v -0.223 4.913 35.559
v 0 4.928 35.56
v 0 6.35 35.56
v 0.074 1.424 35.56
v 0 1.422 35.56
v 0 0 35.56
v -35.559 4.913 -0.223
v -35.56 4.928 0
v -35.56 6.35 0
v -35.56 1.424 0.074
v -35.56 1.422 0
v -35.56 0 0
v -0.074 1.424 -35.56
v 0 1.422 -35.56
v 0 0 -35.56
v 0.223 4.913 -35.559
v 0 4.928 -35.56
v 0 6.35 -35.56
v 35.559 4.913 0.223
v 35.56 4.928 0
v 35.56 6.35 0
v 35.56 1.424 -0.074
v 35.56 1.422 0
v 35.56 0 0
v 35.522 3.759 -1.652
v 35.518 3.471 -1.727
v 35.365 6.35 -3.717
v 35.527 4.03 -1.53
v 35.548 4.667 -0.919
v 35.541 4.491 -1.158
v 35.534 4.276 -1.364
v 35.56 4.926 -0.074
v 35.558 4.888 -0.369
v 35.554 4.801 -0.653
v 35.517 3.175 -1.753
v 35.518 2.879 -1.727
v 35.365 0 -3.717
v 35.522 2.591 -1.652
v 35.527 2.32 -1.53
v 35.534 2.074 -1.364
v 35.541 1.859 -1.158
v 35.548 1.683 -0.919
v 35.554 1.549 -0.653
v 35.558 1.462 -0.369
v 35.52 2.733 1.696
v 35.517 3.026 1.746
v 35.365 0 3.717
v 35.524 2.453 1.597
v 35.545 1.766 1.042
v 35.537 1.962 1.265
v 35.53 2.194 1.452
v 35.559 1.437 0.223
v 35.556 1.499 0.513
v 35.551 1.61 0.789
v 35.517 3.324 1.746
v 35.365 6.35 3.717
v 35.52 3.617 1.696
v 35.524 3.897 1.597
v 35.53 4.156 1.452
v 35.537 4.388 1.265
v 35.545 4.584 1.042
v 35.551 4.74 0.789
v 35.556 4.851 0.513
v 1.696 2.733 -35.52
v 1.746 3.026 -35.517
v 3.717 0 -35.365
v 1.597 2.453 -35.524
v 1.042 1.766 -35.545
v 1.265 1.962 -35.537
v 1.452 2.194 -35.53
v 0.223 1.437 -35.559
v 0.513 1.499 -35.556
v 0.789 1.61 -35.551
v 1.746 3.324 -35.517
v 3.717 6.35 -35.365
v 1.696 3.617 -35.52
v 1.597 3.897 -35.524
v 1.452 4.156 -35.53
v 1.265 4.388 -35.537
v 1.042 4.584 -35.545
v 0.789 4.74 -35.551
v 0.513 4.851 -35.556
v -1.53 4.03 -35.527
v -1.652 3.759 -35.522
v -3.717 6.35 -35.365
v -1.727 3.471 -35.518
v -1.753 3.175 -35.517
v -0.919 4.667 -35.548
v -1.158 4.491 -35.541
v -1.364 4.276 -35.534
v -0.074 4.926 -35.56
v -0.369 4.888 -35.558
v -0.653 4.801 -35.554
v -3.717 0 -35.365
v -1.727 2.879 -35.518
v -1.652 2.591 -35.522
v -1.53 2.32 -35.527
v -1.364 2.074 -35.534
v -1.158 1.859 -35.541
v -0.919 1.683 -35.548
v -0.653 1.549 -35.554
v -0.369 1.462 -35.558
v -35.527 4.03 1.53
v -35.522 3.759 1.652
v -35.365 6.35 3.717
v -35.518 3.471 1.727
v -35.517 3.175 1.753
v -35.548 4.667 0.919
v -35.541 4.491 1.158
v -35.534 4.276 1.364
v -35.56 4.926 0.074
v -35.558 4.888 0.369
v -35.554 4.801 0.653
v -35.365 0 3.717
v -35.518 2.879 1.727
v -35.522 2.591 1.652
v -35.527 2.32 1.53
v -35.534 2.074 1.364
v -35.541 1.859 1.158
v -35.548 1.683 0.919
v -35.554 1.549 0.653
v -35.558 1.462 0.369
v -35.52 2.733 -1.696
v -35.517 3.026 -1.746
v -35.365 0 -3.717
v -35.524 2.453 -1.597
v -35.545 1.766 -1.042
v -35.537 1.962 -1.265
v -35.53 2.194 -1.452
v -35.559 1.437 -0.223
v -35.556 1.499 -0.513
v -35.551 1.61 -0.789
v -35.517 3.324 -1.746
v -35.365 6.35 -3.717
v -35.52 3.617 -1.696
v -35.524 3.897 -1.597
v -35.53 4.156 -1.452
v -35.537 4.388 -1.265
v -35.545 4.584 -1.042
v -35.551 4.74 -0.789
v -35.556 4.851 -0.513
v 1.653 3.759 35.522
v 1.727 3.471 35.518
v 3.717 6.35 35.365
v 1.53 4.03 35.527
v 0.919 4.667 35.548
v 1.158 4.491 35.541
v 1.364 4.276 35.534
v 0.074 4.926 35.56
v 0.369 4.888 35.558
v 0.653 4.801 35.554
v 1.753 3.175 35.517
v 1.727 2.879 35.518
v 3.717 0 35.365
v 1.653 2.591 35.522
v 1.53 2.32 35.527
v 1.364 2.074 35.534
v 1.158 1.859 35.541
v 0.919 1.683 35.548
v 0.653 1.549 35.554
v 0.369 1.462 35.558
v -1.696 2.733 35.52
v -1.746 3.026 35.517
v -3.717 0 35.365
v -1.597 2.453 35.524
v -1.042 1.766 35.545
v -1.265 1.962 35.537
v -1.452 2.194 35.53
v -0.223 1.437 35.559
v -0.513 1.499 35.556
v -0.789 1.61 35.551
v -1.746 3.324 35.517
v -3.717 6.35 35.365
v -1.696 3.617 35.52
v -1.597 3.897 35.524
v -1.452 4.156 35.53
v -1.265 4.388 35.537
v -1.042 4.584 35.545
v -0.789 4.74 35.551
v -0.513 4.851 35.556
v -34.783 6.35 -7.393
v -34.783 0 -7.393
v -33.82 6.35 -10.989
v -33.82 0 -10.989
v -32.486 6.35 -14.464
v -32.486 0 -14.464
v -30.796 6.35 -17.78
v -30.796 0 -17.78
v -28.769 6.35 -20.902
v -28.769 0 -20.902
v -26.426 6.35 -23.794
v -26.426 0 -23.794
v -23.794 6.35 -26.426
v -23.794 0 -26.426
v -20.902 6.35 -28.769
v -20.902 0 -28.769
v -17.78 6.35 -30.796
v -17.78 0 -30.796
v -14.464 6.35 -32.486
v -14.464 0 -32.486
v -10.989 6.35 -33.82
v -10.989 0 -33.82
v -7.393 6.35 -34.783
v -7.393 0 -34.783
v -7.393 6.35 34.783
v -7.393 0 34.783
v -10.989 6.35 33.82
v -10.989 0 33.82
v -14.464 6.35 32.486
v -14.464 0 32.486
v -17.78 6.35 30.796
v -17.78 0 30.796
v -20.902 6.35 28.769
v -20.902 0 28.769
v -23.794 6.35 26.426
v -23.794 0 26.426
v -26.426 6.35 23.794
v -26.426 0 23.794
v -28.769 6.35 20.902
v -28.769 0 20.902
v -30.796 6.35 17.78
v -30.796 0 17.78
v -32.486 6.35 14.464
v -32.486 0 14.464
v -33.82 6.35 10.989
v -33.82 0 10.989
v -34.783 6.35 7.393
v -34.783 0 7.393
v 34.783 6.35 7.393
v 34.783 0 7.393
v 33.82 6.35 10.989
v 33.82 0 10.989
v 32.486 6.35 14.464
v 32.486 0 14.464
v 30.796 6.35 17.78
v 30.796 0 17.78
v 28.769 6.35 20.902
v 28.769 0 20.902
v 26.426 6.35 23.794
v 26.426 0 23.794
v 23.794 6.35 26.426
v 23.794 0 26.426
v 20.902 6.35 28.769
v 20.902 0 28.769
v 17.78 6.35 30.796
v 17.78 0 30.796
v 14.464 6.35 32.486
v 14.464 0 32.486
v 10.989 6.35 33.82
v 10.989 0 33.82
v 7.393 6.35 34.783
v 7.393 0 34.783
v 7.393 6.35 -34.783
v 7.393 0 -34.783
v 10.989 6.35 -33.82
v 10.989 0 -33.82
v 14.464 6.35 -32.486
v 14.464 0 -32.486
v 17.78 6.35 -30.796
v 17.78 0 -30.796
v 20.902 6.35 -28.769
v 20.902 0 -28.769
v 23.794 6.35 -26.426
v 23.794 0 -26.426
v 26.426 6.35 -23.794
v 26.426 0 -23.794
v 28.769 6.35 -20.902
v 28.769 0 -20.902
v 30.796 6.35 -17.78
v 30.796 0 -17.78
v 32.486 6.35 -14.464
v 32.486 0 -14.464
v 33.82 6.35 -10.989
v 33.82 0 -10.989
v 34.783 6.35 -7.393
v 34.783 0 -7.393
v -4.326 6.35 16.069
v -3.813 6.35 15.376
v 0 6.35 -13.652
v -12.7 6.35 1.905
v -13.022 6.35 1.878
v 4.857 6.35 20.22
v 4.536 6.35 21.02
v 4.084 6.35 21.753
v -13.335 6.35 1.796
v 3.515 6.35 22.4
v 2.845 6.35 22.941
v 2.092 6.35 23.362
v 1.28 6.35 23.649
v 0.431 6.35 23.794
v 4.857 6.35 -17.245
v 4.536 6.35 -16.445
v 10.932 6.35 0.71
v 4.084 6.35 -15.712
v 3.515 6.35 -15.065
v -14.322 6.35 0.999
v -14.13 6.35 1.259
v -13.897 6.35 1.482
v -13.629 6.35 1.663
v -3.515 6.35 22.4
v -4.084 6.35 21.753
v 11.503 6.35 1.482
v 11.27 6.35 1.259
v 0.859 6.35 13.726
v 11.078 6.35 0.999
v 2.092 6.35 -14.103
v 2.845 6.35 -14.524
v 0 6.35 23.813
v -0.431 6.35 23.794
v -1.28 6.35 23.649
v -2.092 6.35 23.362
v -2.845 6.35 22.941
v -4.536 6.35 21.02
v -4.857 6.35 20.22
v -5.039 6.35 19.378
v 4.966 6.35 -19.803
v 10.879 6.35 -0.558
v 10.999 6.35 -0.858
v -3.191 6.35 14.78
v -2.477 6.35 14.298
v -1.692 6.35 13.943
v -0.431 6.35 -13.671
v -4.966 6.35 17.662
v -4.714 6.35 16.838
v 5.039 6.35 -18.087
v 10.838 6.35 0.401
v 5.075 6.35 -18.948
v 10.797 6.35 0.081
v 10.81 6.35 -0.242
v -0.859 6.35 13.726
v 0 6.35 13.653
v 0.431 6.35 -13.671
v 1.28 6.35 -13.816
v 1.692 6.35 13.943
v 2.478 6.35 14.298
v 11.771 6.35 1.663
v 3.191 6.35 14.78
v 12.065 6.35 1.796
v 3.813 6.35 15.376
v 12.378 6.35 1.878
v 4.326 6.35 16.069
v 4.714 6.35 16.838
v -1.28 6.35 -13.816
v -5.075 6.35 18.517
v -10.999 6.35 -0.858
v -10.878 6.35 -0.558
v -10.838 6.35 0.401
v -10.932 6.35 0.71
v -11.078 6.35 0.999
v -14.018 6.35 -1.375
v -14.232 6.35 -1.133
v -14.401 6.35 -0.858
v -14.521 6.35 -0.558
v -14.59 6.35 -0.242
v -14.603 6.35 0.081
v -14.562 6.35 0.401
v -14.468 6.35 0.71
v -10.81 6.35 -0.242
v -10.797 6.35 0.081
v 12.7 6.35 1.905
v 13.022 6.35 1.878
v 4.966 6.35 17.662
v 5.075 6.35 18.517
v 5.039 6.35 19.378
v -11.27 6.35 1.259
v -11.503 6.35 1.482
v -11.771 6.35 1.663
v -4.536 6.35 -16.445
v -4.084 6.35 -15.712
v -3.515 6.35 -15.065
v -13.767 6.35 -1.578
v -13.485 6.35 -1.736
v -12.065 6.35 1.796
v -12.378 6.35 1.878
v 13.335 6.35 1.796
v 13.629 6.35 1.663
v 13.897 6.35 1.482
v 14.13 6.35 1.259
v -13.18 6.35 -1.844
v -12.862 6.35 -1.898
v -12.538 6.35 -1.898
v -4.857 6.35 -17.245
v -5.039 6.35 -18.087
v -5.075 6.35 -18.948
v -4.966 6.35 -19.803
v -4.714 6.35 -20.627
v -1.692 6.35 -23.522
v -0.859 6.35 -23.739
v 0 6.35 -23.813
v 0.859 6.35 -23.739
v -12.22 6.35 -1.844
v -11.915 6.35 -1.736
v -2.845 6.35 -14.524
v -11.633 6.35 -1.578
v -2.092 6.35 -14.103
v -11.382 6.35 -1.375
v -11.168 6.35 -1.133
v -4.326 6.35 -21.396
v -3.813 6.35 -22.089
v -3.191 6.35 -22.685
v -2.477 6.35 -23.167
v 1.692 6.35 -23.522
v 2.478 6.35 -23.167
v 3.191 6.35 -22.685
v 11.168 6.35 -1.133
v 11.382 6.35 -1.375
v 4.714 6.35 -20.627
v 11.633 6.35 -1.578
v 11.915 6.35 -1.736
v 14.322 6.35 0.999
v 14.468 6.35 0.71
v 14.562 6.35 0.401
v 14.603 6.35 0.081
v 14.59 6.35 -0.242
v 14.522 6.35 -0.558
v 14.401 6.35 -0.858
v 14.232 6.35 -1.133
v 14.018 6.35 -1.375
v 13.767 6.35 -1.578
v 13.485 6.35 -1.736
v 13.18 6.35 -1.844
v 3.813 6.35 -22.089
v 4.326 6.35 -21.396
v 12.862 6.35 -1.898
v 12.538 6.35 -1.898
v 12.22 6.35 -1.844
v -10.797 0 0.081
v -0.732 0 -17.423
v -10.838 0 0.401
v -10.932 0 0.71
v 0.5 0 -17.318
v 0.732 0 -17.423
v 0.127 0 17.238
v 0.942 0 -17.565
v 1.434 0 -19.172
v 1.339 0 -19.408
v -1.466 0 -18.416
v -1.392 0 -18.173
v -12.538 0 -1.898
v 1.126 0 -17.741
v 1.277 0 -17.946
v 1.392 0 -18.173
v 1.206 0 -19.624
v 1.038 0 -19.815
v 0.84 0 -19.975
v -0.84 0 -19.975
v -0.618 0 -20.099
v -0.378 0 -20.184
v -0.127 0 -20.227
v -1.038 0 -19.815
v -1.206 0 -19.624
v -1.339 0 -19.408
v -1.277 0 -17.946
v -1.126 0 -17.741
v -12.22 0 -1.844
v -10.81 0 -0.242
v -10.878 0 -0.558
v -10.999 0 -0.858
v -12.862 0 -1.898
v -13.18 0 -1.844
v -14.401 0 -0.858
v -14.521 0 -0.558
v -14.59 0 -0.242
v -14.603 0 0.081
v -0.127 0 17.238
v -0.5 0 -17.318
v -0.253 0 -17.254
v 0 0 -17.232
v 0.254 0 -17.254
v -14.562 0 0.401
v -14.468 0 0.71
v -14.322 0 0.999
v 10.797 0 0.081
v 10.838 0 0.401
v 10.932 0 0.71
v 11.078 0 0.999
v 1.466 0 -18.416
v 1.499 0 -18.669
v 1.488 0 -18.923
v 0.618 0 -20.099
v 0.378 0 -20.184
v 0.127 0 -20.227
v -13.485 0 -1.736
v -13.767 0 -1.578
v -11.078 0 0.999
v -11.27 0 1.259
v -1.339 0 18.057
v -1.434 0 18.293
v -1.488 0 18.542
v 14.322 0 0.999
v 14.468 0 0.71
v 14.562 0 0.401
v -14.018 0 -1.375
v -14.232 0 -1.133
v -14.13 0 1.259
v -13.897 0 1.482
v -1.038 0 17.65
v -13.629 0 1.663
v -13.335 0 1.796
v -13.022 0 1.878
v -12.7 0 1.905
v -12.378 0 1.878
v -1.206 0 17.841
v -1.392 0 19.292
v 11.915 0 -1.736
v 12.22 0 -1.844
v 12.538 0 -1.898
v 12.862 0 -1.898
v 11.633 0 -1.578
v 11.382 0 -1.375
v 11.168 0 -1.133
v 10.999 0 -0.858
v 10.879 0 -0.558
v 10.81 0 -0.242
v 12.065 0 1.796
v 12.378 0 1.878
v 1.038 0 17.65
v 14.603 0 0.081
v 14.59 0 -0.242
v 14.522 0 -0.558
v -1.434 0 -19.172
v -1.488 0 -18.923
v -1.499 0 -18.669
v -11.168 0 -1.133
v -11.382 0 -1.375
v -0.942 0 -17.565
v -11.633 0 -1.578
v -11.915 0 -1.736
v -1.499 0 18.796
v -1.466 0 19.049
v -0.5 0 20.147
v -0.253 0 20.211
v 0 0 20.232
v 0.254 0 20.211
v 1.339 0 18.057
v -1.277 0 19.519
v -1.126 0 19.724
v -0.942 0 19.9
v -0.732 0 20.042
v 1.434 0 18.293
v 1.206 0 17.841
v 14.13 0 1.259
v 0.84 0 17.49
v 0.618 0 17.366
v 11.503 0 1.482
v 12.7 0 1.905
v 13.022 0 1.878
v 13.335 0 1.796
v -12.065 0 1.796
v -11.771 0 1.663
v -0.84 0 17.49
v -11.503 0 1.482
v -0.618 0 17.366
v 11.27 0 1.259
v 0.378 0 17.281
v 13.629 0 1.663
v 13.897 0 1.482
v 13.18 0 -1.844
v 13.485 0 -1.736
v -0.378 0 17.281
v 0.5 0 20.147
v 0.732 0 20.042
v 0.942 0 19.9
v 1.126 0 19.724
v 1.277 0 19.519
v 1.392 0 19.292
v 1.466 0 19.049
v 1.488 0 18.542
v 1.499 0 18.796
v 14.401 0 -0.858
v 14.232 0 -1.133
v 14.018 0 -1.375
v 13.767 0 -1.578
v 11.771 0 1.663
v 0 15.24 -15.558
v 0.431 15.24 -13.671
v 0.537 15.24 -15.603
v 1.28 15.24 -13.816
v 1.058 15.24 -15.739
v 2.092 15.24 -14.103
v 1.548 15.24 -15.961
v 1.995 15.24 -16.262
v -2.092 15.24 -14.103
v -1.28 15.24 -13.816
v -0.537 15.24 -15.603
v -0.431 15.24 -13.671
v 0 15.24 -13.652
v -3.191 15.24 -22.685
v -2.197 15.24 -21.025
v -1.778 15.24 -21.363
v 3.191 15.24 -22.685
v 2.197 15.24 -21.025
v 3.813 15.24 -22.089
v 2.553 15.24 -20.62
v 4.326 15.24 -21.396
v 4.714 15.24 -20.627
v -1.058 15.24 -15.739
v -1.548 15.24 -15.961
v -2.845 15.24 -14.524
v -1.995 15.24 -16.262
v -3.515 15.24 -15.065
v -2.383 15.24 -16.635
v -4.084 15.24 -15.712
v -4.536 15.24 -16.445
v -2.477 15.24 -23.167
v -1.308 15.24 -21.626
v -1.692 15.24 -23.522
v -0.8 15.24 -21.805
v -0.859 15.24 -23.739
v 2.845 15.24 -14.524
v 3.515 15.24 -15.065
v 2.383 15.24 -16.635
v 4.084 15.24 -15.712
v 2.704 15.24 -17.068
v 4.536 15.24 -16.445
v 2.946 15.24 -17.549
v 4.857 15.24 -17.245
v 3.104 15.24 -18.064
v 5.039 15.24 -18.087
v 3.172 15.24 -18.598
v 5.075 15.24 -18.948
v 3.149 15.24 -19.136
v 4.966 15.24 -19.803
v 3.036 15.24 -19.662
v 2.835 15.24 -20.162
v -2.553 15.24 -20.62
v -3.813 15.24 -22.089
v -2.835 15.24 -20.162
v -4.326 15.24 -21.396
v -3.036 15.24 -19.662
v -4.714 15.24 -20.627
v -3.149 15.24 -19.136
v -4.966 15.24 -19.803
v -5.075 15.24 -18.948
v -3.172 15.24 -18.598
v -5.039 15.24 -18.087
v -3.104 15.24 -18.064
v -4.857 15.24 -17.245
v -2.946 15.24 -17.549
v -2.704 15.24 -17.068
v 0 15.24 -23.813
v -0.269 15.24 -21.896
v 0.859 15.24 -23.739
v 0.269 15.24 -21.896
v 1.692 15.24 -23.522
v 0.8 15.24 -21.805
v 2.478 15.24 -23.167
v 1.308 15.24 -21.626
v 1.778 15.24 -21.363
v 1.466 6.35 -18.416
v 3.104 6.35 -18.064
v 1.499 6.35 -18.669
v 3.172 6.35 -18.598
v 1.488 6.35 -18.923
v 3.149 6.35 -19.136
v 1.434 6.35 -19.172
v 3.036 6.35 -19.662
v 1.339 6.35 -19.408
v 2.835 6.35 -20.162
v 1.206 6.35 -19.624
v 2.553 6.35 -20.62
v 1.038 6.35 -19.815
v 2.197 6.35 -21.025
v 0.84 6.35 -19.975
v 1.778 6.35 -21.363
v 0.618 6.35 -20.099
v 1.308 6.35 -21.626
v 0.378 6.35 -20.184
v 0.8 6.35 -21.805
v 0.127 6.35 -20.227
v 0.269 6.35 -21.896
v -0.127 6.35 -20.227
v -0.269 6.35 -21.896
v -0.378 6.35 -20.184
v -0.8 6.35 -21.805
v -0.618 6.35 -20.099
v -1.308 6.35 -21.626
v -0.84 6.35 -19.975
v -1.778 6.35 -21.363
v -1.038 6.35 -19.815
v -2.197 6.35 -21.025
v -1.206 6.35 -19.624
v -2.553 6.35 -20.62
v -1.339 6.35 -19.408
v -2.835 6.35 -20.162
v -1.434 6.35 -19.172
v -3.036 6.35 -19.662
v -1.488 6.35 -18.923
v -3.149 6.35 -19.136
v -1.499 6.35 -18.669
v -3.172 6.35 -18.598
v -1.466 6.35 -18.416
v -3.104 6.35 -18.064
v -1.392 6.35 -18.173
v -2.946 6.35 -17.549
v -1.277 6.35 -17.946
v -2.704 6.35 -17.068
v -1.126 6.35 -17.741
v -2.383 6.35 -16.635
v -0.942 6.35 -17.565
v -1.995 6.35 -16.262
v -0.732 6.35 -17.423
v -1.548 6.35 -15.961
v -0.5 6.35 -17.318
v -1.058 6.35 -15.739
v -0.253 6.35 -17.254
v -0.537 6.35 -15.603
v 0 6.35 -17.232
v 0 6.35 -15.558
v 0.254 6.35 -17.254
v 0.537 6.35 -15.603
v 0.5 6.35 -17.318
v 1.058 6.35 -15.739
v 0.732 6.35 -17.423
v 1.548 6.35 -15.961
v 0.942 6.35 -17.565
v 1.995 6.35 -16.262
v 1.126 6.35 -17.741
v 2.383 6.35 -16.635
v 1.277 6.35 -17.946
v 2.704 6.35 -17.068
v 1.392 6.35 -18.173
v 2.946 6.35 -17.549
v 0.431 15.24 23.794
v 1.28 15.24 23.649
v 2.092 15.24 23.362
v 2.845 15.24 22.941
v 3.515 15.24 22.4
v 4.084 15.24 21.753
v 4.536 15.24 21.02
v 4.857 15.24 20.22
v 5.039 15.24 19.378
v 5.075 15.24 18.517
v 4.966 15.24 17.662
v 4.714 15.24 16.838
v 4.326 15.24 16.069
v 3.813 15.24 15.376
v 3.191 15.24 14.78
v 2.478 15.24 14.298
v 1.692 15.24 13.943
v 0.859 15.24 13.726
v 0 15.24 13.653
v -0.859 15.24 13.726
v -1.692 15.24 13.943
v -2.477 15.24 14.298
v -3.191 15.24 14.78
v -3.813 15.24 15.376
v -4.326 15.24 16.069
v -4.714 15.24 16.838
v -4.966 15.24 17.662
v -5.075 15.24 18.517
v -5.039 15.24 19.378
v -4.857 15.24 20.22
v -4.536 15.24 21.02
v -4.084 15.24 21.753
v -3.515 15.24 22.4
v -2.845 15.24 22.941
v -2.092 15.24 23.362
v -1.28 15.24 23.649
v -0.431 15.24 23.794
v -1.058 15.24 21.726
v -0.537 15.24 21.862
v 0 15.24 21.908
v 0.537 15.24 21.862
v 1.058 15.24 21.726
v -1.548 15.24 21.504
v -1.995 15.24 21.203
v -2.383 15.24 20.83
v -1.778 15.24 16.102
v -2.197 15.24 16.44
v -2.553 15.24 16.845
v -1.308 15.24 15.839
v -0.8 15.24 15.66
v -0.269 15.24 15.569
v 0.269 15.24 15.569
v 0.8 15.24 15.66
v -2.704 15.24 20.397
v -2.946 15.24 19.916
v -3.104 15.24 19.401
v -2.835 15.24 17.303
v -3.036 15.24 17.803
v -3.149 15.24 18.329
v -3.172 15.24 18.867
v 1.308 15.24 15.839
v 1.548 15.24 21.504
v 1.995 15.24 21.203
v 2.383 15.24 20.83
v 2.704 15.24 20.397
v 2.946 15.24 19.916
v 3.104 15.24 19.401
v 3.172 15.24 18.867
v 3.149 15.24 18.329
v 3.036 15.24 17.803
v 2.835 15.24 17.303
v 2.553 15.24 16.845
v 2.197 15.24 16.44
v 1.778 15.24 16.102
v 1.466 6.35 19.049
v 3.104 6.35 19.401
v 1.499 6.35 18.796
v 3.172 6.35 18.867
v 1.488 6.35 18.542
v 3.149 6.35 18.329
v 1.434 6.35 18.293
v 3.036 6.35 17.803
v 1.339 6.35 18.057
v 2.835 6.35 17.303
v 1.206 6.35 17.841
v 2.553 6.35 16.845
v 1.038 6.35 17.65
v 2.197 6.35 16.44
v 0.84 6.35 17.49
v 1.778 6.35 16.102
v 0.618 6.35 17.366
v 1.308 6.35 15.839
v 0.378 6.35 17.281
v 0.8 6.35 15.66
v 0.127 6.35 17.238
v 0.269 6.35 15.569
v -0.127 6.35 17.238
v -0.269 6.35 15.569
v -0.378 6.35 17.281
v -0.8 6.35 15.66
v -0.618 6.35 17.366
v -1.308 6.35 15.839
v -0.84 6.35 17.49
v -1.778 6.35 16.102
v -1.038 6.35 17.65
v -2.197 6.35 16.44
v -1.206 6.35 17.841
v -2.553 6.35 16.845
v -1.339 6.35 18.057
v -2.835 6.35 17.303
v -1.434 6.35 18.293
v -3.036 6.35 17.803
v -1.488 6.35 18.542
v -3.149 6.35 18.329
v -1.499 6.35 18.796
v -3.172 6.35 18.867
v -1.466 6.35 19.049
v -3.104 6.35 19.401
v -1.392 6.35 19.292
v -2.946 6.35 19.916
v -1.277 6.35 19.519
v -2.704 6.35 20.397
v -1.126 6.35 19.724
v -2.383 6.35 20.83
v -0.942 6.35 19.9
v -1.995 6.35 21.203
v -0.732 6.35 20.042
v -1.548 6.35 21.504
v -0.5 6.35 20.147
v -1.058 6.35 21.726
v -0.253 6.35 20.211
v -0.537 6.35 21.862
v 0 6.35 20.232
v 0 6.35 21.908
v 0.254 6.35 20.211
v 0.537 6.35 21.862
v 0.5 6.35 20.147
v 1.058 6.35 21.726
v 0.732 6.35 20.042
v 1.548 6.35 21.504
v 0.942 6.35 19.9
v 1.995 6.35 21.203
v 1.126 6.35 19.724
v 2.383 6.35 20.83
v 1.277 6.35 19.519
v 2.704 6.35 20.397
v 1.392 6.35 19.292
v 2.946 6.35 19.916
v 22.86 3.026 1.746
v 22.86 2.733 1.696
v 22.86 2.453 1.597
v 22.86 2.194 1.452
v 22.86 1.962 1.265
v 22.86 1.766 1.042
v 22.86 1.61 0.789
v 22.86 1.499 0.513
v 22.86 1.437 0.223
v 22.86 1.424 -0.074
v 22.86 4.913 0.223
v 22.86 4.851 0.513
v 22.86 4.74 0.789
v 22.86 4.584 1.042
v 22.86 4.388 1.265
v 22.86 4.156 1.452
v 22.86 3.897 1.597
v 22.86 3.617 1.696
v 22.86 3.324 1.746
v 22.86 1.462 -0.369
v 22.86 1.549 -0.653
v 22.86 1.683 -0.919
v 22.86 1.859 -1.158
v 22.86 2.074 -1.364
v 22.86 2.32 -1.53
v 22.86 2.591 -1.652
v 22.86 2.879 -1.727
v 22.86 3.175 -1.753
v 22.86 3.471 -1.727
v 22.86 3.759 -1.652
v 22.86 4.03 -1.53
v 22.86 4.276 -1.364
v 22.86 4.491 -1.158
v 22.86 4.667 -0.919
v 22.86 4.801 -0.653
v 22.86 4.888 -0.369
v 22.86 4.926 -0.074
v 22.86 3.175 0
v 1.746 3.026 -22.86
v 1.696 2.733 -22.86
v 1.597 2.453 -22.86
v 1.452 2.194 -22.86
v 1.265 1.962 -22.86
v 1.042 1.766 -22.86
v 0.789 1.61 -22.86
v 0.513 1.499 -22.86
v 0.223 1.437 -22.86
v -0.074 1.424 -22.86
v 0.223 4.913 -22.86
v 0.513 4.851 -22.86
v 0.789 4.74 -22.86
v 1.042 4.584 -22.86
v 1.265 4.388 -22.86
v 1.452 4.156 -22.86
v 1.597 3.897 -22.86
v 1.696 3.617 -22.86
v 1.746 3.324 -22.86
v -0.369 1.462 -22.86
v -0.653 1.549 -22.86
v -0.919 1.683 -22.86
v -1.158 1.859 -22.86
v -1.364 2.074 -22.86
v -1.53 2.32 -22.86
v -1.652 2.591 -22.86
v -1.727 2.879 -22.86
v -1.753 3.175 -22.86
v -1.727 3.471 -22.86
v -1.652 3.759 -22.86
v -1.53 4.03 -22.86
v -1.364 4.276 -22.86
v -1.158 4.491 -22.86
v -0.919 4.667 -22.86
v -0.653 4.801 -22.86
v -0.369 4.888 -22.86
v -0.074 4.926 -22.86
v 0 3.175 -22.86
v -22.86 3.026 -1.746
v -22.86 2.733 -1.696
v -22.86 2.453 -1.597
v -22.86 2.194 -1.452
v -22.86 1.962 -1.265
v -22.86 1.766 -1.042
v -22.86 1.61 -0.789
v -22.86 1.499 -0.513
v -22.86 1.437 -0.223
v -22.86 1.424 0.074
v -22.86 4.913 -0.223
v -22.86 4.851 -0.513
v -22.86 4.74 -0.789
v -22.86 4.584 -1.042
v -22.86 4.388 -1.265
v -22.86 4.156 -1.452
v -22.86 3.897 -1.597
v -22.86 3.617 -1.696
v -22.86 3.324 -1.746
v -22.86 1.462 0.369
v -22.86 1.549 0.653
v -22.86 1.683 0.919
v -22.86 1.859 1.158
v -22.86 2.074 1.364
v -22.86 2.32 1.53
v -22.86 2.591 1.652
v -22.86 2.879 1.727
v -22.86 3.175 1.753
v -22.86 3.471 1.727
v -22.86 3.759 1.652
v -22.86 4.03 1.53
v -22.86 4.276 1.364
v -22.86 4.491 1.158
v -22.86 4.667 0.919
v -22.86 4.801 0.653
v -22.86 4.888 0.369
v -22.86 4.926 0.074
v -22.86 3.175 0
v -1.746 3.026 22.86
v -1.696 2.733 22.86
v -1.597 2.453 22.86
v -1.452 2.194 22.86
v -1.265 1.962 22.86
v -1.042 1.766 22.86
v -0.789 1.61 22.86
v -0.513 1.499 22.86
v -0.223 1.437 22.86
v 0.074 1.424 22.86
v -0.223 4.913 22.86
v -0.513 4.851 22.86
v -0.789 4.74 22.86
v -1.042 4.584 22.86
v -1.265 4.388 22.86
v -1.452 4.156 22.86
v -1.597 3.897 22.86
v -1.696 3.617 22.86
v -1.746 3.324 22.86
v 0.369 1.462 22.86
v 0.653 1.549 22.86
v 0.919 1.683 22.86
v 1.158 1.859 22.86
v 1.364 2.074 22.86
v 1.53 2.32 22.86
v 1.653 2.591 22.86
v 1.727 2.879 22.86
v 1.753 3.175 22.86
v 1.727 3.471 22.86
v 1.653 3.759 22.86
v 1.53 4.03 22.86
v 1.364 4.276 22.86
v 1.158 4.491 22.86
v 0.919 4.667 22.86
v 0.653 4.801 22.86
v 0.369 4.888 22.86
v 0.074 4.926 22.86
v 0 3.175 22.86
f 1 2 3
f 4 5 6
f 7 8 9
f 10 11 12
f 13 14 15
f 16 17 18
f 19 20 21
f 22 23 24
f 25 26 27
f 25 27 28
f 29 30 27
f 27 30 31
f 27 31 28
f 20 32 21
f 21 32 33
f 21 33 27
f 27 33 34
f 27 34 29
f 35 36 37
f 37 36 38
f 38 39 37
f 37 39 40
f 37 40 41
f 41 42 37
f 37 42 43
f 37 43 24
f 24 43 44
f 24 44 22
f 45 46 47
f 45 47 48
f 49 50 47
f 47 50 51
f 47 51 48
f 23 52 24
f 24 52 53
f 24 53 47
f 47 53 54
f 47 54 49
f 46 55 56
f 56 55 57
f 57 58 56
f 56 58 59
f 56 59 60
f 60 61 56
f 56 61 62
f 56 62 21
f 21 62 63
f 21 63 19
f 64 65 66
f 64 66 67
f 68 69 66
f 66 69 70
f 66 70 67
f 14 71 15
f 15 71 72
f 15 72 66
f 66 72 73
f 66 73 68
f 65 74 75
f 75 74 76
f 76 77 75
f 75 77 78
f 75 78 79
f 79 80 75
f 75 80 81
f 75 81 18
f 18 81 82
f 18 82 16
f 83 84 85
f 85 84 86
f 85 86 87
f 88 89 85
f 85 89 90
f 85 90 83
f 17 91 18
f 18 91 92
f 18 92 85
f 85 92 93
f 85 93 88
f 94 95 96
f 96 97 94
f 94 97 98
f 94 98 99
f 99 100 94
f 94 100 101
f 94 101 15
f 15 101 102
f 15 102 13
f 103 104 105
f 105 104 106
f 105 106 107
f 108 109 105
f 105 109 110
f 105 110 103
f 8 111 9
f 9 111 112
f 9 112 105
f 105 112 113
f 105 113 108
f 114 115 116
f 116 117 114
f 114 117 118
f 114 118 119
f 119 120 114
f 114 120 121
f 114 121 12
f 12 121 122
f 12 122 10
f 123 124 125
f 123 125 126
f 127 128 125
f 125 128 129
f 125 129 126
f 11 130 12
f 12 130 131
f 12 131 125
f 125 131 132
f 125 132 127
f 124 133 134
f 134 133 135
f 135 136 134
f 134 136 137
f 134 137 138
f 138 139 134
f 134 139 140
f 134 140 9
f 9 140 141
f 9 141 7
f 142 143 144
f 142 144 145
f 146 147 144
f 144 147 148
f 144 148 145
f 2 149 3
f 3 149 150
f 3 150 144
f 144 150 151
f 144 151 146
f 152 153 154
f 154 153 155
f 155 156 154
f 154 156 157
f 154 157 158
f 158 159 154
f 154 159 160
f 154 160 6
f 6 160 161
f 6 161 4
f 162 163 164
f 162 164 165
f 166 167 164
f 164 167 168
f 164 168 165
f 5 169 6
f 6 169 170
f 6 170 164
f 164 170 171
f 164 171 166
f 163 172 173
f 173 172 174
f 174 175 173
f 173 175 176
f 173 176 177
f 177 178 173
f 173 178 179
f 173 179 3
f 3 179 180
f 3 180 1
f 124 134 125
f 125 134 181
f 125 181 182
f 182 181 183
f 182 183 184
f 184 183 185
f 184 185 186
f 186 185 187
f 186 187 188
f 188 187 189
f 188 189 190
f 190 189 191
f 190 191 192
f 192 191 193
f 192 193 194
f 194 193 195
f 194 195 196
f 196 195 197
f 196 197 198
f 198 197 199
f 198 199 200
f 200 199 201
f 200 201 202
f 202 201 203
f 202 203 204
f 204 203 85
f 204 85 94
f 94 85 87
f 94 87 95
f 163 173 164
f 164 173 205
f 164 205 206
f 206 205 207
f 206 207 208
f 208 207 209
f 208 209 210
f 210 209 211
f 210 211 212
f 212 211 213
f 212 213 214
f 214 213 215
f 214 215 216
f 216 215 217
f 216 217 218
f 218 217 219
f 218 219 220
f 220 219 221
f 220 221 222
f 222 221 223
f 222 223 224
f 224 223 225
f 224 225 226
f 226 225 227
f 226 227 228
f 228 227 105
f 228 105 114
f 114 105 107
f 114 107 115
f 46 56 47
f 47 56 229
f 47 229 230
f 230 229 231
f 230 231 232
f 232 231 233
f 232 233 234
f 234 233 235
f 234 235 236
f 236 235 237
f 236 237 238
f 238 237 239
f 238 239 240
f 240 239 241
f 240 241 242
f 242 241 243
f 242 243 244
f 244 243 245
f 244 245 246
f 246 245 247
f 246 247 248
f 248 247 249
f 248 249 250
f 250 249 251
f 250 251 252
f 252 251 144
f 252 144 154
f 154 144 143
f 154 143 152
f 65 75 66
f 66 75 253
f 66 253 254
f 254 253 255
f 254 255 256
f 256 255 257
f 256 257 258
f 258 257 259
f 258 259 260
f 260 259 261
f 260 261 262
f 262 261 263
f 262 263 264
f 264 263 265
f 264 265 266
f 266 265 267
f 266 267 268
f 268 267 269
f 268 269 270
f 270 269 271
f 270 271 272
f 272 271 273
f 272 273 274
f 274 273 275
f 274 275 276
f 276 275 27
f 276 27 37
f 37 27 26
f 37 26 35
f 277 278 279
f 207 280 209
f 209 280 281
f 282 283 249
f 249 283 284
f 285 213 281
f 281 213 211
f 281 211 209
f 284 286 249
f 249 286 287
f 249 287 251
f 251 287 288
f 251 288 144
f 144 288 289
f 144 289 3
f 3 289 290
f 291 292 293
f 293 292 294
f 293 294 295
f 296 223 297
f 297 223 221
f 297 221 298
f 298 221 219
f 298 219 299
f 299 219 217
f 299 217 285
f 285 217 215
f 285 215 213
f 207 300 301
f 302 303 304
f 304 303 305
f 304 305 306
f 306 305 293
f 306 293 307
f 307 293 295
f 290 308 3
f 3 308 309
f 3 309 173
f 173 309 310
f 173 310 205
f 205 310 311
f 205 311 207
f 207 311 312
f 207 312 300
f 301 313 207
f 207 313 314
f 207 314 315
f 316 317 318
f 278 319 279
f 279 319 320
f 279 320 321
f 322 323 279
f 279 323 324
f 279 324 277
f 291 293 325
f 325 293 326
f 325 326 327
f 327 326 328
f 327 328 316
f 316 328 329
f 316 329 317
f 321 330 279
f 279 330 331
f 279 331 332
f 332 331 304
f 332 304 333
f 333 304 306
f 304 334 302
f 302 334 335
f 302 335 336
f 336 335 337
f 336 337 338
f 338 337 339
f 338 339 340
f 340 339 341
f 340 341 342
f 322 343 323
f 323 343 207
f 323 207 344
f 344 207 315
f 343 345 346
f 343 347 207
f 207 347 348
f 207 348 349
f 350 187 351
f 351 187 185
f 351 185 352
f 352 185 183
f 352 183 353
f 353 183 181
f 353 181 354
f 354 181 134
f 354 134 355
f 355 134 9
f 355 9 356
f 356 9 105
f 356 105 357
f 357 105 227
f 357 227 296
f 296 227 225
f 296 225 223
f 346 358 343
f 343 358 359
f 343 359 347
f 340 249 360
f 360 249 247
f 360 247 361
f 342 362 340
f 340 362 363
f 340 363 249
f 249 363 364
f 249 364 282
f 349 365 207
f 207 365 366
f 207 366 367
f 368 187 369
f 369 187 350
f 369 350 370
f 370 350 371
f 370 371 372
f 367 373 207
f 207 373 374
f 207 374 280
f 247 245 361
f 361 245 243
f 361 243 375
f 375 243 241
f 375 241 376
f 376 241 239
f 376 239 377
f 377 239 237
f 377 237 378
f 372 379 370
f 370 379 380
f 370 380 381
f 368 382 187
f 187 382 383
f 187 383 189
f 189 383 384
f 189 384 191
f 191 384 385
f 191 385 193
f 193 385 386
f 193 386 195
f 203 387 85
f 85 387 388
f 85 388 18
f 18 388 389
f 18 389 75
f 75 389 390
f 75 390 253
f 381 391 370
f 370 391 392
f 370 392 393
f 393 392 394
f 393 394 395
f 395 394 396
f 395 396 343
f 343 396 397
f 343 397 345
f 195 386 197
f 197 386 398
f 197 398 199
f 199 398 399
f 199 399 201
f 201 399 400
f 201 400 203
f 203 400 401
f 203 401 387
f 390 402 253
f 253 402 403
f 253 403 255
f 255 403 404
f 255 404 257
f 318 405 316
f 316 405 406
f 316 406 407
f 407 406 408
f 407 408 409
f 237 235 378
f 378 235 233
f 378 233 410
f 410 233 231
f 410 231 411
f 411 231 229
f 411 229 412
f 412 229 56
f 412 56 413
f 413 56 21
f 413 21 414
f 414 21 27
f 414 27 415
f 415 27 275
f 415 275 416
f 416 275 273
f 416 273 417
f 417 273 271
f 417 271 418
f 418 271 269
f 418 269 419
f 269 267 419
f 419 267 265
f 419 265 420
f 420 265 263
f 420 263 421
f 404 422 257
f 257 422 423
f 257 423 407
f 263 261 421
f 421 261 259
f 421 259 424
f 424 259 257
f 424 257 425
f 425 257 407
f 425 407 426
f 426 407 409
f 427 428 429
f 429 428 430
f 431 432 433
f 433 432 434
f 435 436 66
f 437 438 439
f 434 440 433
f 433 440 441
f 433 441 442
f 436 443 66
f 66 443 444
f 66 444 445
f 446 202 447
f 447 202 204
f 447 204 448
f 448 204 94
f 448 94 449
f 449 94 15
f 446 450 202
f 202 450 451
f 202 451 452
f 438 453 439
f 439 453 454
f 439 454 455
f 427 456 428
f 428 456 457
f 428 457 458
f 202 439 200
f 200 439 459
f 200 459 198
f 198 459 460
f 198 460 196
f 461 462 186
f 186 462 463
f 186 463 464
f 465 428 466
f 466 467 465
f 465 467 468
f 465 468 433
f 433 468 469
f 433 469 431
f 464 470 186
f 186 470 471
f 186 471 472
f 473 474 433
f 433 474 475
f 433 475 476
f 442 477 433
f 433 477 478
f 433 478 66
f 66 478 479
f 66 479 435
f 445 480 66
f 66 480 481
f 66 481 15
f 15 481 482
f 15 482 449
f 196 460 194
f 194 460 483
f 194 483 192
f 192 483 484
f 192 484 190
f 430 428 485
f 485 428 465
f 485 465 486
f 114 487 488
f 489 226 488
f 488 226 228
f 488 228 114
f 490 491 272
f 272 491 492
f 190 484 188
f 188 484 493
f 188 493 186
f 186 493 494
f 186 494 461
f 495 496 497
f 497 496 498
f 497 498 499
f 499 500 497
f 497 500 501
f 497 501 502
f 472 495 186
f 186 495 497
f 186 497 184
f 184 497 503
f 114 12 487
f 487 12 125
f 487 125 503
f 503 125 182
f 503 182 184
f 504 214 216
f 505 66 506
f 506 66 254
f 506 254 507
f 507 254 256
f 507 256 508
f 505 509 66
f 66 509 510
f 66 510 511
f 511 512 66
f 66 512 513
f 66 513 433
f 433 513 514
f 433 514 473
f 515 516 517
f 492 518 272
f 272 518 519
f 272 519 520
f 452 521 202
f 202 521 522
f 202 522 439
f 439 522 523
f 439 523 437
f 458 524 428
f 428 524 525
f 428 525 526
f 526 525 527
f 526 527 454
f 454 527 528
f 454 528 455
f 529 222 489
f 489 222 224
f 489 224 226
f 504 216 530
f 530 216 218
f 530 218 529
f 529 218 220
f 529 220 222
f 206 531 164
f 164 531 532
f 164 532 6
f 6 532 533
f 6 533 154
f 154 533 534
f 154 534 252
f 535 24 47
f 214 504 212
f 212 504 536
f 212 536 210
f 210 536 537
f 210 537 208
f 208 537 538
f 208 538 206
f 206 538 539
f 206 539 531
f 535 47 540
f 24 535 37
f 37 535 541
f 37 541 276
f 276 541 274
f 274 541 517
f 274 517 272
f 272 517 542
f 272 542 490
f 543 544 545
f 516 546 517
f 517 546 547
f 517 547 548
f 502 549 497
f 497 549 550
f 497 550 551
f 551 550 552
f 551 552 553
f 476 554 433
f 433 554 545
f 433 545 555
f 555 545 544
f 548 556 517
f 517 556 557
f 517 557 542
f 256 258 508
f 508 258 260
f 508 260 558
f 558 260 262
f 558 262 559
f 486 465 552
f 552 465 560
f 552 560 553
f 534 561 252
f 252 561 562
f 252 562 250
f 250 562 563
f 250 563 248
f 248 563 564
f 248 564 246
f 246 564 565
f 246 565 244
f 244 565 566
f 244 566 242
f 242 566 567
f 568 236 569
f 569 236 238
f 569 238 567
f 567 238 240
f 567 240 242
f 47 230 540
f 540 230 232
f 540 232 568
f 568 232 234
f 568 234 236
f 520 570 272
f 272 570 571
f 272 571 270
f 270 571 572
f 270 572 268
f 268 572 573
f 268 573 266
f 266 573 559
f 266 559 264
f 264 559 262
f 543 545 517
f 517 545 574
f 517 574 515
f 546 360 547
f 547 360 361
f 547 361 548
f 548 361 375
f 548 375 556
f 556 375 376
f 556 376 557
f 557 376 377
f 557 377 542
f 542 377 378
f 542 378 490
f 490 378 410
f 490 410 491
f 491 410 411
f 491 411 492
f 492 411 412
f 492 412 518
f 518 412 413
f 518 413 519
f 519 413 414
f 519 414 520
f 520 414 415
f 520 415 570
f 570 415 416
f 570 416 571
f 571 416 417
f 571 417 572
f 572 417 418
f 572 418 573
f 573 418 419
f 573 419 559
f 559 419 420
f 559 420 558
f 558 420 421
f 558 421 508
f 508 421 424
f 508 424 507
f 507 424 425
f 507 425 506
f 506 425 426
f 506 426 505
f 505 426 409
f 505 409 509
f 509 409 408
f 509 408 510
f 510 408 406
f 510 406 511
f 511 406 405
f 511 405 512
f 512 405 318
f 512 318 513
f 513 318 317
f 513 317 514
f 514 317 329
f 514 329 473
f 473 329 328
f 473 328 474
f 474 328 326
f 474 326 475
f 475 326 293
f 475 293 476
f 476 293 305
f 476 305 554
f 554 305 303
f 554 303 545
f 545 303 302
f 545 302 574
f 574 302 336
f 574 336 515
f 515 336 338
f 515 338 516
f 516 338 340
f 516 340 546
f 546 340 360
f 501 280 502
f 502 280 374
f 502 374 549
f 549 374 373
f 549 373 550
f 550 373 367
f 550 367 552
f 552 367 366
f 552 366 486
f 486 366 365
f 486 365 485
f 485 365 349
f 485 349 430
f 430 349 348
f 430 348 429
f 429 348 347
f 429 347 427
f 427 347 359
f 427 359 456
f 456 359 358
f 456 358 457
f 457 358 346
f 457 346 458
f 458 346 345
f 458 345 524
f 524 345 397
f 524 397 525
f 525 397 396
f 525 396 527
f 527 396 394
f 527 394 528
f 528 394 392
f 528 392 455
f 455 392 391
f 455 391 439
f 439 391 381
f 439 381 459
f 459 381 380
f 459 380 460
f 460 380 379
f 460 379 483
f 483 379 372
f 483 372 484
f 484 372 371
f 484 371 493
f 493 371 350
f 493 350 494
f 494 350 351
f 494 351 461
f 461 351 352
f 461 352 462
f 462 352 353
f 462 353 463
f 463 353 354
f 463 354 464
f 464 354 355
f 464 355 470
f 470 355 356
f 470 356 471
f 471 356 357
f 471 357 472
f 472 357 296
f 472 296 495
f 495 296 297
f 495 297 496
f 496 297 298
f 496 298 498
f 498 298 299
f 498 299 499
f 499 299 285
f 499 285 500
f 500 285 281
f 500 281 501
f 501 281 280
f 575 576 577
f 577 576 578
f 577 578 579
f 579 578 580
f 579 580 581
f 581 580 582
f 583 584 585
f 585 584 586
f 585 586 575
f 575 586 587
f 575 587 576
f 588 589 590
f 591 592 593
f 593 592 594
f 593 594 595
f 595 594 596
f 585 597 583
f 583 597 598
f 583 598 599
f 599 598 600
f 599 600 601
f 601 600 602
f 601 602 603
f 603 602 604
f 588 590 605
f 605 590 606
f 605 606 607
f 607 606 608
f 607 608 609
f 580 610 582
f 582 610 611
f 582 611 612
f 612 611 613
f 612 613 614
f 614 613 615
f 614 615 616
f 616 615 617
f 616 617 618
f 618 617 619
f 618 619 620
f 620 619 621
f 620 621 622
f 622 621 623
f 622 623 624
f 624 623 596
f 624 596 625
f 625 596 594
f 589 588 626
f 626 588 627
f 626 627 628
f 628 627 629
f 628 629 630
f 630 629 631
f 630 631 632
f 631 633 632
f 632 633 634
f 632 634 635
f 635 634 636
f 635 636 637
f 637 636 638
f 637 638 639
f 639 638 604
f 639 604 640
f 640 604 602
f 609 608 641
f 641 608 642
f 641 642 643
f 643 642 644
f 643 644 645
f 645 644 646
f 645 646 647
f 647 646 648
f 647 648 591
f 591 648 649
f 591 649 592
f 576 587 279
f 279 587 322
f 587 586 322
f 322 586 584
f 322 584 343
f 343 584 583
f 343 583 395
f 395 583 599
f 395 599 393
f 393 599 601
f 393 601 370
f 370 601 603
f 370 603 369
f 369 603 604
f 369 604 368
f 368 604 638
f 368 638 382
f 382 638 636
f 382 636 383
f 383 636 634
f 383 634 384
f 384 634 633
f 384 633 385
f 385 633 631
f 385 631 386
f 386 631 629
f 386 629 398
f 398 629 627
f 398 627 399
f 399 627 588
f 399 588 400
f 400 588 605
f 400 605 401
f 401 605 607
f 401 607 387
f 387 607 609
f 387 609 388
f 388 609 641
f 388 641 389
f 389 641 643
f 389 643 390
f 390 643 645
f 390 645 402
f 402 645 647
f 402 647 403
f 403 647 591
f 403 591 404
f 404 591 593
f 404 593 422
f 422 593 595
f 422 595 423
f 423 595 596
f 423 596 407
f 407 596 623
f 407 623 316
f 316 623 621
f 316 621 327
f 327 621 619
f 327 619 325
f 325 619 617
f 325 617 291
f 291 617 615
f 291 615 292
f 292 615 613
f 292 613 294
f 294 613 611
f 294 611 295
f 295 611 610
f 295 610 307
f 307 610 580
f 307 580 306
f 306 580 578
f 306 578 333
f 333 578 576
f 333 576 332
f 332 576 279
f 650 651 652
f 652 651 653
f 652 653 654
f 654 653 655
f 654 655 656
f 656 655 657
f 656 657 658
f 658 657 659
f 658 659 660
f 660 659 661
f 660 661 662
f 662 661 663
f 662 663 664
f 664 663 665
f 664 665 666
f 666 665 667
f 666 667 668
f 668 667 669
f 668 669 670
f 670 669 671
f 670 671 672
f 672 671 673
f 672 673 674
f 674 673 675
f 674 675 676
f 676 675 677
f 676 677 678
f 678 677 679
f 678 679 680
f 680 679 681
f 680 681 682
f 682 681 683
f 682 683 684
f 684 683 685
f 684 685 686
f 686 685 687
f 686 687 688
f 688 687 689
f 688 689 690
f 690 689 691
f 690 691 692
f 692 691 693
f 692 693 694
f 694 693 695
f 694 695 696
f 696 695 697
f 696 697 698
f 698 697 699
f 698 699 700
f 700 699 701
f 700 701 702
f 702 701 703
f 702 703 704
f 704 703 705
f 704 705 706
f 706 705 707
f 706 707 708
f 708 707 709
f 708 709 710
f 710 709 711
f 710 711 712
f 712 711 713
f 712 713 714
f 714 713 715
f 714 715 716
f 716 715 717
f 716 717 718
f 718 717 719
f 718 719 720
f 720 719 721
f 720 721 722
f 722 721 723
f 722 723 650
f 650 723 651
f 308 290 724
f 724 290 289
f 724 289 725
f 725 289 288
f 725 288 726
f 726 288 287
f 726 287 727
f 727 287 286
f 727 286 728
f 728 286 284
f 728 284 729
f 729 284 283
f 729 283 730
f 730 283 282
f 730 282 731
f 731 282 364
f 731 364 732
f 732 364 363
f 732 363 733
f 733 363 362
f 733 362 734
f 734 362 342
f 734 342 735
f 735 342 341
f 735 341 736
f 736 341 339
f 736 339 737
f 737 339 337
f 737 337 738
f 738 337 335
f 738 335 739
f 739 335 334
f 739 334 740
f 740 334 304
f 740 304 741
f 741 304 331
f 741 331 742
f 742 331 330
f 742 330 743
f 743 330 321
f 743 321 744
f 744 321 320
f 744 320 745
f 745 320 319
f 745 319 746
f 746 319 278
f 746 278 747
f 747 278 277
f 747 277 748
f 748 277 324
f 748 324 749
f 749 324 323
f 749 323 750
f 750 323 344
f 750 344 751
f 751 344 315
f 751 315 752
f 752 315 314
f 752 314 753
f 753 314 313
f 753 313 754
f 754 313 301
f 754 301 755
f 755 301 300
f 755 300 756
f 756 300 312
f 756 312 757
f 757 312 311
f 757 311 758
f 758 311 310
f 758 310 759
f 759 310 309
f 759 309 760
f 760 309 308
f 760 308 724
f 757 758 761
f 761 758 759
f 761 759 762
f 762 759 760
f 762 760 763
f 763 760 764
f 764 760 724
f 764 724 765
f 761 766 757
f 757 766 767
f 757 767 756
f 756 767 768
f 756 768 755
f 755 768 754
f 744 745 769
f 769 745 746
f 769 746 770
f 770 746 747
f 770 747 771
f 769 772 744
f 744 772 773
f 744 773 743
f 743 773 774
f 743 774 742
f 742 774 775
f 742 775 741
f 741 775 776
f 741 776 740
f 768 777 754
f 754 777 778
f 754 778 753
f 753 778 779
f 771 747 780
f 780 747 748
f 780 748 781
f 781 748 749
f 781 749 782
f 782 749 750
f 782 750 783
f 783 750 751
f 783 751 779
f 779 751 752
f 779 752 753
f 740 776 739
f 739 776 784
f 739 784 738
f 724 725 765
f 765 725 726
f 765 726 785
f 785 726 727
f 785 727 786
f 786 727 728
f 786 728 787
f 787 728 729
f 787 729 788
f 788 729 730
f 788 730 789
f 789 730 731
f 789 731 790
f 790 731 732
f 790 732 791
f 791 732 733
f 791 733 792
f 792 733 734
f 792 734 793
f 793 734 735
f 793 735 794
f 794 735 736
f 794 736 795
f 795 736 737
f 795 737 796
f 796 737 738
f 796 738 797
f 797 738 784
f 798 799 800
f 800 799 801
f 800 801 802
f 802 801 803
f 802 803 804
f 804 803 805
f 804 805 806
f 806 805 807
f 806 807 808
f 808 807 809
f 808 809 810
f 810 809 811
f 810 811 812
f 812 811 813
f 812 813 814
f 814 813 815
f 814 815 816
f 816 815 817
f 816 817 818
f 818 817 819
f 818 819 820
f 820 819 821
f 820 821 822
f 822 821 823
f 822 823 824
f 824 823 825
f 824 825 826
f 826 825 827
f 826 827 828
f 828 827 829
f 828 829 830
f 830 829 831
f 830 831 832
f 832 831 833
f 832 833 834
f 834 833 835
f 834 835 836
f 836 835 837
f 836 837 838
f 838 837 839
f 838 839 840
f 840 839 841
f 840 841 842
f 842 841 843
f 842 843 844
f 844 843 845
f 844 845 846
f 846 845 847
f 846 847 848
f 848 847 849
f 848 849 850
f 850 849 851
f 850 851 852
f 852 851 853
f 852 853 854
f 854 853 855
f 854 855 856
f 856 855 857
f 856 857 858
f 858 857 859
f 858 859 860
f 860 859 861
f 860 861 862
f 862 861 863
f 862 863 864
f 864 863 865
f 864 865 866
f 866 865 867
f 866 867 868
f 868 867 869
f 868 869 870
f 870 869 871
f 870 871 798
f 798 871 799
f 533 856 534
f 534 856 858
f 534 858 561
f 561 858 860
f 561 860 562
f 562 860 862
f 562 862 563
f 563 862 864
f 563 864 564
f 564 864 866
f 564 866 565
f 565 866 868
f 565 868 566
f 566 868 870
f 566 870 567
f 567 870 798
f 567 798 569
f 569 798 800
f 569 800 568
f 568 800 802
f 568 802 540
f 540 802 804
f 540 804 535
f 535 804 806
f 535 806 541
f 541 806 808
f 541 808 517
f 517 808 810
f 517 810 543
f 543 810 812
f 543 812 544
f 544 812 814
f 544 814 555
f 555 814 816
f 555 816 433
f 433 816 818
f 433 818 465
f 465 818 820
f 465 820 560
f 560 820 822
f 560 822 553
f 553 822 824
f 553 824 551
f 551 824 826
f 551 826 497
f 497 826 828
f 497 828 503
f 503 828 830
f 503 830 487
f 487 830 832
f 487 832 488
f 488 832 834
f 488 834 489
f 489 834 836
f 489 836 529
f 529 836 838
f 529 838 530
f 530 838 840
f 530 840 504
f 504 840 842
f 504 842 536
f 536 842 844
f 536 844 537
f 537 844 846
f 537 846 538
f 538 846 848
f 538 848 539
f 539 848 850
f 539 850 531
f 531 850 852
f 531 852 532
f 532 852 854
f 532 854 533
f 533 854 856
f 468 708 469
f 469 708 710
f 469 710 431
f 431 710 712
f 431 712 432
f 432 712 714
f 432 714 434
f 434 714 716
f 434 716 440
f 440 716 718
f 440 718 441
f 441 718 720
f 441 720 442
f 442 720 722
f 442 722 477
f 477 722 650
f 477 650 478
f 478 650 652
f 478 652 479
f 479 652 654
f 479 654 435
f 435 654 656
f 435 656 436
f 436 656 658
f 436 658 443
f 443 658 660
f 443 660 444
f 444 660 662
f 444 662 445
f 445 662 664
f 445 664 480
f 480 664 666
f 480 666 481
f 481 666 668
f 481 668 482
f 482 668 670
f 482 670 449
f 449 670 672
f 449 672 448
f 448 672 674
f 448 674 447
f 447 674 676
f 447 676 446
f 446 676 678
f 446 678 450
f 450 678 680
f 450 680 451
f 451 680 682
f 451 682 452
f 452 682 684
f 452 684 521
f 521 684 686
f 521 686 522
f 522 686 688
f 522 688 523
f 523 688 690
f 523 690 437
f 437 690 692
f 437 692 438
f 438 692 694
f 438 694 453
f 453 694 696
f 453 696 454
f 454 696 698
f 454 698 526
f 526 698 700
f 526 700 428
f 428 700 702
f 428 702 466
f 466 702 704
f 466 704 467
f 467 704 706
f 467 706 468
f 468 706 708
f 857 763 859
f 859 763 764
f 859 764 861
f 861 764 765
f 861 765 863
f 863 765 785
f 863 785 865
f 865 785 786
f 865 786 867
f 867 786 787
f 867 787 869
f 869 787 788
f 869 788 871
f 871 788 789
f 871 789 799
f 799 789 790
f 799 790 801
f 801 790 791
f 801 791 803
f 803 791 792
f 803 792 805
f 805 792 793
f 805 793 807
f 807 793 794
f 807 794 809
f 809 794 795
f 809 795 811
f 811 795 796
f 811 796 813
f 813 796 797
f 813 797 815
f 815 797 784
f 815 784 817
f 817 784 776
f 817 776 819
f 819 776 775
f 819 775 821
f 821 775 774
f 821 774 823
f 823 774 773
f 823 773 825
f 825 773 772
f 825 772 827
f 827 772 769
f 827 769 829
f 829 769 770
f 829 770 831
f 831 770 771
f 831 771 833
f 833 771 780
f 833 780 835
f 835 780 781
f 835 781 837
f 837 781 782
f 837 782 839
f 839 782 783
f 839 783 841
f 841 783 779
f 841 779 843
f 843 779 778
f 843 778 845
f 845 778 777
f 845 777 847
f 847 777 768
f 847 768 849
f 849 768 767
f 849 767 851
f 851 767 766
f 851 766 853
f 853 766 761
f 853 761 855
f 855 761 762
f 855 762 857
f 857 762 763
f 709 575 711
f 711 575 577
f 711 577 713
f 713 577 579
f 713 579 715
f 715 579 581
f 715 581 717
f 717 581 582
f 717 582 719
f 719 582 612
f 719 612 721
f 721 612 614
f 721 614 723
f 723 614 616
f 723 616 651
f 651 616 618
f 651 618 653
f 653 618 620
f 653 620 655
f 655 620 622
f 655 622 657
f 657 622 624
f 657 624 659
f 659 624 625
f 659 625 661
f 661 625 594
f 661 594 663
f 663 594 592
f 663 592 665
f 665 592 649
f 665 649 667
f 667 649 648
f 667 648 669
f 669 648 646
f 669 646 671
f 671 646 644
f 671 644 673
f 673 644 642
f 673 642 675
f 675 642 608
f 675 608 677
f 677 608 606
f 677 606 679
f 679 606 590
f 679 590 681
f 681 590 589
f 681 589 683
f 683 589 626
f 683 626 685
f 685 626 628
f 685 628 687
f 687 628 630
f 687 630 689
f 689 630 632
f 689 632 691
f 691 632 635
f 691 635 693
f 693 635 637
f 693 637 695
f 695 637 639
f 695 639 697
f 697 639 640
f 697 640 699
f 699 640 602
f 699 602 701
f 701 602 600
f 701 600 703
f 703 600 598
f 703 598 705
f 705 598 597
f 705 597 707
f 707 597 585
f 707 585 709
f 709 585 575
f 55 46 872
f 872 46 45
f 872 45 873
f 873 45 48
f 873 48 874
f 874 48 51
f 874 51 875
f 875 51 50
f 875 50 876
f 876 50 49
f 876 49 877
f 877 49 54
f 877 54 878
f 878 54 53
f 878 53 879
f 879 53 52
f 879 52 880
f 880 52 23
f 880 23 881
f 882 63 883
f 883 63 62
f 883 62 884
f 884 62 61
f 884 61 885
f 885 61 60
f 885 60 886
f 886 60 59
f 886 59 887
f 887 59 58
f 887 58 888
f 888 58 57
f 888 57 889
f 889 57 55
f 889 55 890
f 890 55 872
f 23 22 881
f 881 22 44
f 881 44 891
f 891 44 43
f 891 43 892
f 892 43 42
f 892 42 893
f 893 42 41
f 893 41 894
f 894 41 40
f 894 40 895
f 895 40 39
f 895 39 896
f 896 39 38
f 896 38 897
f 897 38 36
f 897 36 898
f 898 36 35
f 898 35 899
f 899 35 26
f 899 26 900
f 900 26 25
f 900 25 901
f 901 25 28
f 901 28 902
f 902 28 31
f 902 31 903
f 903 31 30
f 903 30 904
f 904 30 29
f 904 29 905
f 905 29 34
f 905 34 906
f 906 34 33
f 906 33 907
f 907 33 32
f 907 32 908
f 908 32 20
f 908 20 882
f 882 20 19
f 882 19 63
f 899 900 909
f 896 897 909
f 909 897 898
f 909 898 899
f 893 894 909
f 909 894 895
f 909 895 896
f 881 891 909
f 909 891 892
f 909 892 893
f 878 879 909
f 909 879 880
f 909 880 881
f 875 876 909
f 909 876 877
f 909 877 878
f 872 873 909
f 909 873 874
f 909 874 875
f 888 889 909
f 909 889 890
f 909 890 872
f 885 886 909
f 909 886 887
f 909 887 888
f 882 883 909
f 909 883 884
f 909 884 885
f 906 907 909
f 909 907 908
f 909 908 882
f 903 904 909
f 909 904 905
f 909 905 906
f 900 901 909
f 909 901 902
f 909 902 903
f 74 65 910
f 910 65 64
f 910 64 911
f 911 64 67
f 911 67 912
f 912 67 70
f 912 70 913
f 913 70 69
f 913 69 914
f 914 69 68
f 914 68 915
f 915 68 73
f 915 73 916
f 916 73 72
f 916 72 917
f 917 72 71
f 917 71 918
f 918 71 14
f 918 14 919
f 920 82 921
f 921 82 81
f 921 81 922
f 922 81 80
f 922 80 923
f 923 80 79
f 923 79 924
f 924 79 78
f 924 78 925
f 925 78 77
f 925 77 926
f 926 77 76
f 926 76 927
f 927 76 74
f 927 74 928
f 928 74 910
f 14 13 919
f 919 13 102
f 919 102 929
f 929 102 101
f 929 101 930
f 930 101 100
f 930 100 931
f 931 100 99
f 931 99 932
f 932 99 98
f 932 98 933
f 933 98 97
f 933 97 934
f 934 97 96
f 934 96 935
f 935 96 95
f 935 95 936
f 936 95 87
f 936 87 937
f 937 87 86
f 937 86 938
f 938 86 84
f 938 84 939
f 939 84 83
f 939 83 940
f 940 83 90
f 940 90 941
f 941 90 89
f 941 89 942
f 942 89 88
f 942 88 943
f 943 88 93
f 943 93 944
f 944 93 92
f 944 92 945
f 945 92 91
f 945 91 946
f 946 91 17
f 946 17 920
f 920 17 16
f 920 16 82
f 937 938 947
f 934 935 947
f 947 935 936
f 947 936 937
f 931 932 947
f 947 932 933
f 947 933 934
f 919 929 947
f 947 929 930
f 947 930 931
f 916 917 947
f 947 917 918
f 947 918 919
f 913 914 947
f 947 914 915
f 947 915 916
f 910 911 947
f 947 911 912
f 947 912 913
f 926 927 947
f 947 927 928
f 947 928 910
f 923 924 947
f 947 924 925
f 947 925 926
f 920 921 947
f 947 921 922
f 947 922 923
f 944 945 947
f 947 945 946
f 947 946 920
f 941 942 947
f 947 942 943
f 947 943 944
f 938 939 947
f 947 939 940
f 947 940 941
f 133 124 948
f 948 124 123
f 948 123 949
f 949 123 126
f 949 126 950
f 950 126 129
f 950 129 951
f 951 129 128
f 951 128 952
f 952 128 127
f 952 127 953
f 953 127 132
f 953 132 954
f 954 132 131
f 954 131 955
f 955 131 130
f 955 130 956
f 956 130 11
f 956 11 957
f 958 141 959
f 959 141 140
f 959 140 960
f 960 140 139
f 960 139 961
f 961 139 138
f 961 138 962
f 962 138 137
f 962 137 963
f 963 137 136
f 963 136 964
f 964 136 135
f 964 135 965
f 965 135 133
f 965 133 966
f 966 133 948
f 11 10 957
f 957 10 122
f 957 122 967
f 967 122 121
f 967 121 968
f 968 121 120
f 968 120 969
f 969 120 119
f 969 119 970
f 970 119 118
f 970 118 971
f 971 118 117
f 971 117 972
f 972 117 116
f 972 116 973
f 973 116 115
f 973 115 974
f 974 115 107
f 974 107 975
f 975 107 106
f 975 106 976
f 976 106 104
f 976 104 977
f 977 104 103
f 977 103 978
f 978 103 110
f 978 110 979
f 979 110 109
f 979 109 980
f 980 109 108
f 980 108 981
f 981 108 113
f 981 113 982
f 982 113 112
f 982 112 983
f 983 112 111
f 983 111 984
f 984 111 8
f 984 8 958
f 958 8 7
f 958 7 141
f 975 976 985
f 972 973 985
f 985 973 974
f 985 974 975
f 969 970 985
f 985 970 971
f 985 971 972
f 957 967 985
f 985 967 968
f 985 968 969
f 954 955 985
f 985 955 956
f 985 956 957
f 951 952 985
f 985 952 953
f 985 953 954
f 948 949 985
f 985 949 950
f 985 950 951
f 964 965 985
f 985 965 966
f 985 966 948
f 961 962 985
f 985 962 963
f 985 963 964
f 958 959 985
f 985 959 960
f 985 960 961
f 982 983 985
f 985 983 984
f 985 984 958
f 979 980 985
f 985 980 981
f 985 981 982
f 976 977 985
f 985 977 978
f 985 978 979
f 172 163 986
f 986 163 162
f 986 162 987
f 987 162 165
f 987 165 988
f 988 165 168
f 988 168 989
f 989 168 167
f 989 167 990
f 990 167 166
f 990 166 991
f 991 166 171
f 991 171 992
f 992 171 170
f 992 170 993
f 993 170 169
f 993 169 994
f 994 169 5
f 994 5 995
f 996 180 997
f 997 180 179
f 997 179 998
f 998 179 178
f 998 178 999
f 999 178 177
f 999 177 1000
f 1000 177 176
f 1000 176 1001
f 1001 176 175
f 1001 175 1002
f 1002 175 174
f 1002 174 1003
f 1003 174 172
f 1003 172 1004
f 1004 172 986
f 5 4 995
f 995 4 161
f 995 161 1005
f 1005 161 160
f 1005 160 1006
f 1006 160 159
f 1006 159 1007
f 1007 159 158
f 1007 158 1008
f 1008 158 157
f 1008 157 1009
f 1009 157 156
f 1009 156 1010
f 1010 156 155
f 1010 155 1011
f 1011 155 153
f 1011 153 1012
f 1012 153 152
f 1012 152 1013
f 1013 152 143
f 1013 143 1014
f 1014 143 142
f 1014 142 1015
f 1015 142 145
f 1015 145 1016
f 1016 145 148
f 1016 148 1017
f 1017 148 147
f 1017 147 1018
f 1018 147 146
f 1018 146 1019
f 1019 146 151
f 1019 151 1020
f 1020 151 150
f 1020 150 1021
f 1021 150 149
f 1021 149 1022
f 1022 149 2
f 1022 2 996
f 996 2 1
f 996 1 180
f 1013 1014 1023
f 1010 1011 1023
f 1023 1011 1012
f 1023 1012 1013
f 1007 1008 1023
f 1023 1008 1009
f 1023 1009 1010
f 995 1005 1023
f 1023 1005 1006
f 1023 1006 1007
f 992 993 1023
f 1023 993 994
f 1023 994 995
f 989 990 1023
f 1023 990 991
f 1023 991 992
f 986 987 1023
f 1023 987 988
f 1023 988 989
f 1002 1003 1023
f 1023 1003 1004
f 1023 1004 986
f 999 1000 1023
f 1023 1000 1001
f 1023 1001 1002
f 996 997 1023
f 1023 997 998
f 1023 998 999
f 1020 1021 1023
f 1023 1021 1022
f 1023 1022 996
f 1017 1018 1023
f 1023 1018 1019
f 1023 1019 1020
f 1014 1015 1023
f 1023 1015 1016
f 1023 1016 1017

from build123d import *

# Parameters (mm, degrees)
SKETCH1_R           = 35.56
BOSS_EXTRUDE1_DEPTH = 6.35
SKETCH3_R           = 1.905
CUT_EXTRUDE1_DEPTH  = 6.35
SKETCH4_R           = 5.08
SKETCH4_R_2         = 2.54
BOSS_EXTRUDE2_DEPTH = 8.89
SKETCH5_R           = 1.5
CUT_EXTRUDE2_DEPTH  = 10
SKETCH6_R           = 3.175
CUT_EXTRUDE3_DEPTH  = 8.89
CUT_EXTRUDE4_START  = 40.64
SKETCH8_R           = 1.7526
CUT_EXTRUDE4_DEPTH  = 17.78
CIRPATTERN1_COUNT   = 4


with BuildPart() as part:
    # Sketch1 → Boss-Extrude1 (new body)
    with BuildSketch(Plane(origin=(0, 0, 0), x_dir=(1, 0, 0), z_dir=(0, 1, 0))):
        with Locations(Location((0, 0, 0), (0, 0, 270))):
            Circle(SKETCH1_R)
    extrude(amount=BOSS_EXTRUDE1_DEPTH)

    # Sketch3 → Cut-Extrude1 (cut)
    with BuildSketch(Plane(origin=(0, 6.35, 0), x_dir=(1, 0, 0), z_dir=(0, 1, 0))):
        with Locations(Location((-12.7, 0, 0), (0, 0, 270))):
            Circle(SKETCH3_R)
        with Locations(Location((12.7, 0, 0), (0, 0, 270))):
            Circle(SKETCH3_R)
    extrude(amount=-CUT_EXTRUDE1_DEPTH, mode=Mode.SUBTRACT)

    # Sketch4 → Boss-Extrude2 (add)
    with BuildSketch(Plane(origin=(0, 6.35, 0), x_dir=(1, 0, 0), z_dir=(0, 1, 0))):
        with Locations(Location((0, 18.7325, 0), (0, 0, 270))):
            Circle(SKETCH4_R)
        with Locations(Location((0, 18.7325, 0), (0, 0, 270))):
            Circle(SKETCH4_R_2, mode=Mode.SUBTRACT)
    boss_extrude2 = extrude(amount=BOSS_EXTRUDE2_DEPTH)

    # Mirror1: Boss-Extrude2 across plane
    add(boss_extrude2.mirror(Plane.XY))

    # Sketch5 → Cut-Extrude2 (cut)
    with BuildSketch(Plane(origin=(0, 6.35, 0), x_dir=(1, 0, 0), z_dir=(0, 1, 0))):
        with Locations(Location((0, 18.7325, 0), (0, 0, 270))):
            Circle(SKETCH5_R)
        with Locations(Location((0, -18.7325, 0), (0, 0, 270))):
            Circle(SKETCH5_R)
    extrude(amount=-CUT_EXTRUDE2_DEPTH, mode=Mode.SUBTRACT)

    # Sketch6 → Cut-Extrude3 (cut)
    with BuildSketch(Plane(origin=(0, 15.24, 0), x_dir=(1, 0, 0), z_dir=(0, 1, 0))):
        with Locations(Location((0, 18.7325, 0), (0, 0, 270))):
            Circle(SKETCH6_R)
        with Locations(Location((0, -18.7325, 0), (0, 0, 270))):
            Circle(SKETCH6_R)
    extrude(amount=-CUT_EXTRUDE3_DEPTH, mode=Mode.SUBTRACT)

    # Sketch8 → Cut-Extrude4 (cut)
    with BuildSketch(Plane(origin=(0, 0, 0), x_dir=(0, 0, -1), z_dir=(1, 0, 0)).offset(CUT_EXTRUDE4_START)):
        with Locations((0, 3.175)):
            Circle(SKETCH8_R)
    cut_extrude4 = extrude(amount=-CUT_EXTRUDE4_DEPTH, mode=Mode.SUBTRACT)

    # CirPattern1: Cut-Extrude4 ×4 about axis
    cirpattern1_axis = Axis((0, 0, 0), (0, 1, 0))
    for i in range(1, CIRPATTERN1_COUNT):
        add(cut_extrude4.rotate(cirpattern1_axis, i * 360 / CIRPATTERN1_COUNT), mode=Mode.SUBTRACT)


solid = part.part
